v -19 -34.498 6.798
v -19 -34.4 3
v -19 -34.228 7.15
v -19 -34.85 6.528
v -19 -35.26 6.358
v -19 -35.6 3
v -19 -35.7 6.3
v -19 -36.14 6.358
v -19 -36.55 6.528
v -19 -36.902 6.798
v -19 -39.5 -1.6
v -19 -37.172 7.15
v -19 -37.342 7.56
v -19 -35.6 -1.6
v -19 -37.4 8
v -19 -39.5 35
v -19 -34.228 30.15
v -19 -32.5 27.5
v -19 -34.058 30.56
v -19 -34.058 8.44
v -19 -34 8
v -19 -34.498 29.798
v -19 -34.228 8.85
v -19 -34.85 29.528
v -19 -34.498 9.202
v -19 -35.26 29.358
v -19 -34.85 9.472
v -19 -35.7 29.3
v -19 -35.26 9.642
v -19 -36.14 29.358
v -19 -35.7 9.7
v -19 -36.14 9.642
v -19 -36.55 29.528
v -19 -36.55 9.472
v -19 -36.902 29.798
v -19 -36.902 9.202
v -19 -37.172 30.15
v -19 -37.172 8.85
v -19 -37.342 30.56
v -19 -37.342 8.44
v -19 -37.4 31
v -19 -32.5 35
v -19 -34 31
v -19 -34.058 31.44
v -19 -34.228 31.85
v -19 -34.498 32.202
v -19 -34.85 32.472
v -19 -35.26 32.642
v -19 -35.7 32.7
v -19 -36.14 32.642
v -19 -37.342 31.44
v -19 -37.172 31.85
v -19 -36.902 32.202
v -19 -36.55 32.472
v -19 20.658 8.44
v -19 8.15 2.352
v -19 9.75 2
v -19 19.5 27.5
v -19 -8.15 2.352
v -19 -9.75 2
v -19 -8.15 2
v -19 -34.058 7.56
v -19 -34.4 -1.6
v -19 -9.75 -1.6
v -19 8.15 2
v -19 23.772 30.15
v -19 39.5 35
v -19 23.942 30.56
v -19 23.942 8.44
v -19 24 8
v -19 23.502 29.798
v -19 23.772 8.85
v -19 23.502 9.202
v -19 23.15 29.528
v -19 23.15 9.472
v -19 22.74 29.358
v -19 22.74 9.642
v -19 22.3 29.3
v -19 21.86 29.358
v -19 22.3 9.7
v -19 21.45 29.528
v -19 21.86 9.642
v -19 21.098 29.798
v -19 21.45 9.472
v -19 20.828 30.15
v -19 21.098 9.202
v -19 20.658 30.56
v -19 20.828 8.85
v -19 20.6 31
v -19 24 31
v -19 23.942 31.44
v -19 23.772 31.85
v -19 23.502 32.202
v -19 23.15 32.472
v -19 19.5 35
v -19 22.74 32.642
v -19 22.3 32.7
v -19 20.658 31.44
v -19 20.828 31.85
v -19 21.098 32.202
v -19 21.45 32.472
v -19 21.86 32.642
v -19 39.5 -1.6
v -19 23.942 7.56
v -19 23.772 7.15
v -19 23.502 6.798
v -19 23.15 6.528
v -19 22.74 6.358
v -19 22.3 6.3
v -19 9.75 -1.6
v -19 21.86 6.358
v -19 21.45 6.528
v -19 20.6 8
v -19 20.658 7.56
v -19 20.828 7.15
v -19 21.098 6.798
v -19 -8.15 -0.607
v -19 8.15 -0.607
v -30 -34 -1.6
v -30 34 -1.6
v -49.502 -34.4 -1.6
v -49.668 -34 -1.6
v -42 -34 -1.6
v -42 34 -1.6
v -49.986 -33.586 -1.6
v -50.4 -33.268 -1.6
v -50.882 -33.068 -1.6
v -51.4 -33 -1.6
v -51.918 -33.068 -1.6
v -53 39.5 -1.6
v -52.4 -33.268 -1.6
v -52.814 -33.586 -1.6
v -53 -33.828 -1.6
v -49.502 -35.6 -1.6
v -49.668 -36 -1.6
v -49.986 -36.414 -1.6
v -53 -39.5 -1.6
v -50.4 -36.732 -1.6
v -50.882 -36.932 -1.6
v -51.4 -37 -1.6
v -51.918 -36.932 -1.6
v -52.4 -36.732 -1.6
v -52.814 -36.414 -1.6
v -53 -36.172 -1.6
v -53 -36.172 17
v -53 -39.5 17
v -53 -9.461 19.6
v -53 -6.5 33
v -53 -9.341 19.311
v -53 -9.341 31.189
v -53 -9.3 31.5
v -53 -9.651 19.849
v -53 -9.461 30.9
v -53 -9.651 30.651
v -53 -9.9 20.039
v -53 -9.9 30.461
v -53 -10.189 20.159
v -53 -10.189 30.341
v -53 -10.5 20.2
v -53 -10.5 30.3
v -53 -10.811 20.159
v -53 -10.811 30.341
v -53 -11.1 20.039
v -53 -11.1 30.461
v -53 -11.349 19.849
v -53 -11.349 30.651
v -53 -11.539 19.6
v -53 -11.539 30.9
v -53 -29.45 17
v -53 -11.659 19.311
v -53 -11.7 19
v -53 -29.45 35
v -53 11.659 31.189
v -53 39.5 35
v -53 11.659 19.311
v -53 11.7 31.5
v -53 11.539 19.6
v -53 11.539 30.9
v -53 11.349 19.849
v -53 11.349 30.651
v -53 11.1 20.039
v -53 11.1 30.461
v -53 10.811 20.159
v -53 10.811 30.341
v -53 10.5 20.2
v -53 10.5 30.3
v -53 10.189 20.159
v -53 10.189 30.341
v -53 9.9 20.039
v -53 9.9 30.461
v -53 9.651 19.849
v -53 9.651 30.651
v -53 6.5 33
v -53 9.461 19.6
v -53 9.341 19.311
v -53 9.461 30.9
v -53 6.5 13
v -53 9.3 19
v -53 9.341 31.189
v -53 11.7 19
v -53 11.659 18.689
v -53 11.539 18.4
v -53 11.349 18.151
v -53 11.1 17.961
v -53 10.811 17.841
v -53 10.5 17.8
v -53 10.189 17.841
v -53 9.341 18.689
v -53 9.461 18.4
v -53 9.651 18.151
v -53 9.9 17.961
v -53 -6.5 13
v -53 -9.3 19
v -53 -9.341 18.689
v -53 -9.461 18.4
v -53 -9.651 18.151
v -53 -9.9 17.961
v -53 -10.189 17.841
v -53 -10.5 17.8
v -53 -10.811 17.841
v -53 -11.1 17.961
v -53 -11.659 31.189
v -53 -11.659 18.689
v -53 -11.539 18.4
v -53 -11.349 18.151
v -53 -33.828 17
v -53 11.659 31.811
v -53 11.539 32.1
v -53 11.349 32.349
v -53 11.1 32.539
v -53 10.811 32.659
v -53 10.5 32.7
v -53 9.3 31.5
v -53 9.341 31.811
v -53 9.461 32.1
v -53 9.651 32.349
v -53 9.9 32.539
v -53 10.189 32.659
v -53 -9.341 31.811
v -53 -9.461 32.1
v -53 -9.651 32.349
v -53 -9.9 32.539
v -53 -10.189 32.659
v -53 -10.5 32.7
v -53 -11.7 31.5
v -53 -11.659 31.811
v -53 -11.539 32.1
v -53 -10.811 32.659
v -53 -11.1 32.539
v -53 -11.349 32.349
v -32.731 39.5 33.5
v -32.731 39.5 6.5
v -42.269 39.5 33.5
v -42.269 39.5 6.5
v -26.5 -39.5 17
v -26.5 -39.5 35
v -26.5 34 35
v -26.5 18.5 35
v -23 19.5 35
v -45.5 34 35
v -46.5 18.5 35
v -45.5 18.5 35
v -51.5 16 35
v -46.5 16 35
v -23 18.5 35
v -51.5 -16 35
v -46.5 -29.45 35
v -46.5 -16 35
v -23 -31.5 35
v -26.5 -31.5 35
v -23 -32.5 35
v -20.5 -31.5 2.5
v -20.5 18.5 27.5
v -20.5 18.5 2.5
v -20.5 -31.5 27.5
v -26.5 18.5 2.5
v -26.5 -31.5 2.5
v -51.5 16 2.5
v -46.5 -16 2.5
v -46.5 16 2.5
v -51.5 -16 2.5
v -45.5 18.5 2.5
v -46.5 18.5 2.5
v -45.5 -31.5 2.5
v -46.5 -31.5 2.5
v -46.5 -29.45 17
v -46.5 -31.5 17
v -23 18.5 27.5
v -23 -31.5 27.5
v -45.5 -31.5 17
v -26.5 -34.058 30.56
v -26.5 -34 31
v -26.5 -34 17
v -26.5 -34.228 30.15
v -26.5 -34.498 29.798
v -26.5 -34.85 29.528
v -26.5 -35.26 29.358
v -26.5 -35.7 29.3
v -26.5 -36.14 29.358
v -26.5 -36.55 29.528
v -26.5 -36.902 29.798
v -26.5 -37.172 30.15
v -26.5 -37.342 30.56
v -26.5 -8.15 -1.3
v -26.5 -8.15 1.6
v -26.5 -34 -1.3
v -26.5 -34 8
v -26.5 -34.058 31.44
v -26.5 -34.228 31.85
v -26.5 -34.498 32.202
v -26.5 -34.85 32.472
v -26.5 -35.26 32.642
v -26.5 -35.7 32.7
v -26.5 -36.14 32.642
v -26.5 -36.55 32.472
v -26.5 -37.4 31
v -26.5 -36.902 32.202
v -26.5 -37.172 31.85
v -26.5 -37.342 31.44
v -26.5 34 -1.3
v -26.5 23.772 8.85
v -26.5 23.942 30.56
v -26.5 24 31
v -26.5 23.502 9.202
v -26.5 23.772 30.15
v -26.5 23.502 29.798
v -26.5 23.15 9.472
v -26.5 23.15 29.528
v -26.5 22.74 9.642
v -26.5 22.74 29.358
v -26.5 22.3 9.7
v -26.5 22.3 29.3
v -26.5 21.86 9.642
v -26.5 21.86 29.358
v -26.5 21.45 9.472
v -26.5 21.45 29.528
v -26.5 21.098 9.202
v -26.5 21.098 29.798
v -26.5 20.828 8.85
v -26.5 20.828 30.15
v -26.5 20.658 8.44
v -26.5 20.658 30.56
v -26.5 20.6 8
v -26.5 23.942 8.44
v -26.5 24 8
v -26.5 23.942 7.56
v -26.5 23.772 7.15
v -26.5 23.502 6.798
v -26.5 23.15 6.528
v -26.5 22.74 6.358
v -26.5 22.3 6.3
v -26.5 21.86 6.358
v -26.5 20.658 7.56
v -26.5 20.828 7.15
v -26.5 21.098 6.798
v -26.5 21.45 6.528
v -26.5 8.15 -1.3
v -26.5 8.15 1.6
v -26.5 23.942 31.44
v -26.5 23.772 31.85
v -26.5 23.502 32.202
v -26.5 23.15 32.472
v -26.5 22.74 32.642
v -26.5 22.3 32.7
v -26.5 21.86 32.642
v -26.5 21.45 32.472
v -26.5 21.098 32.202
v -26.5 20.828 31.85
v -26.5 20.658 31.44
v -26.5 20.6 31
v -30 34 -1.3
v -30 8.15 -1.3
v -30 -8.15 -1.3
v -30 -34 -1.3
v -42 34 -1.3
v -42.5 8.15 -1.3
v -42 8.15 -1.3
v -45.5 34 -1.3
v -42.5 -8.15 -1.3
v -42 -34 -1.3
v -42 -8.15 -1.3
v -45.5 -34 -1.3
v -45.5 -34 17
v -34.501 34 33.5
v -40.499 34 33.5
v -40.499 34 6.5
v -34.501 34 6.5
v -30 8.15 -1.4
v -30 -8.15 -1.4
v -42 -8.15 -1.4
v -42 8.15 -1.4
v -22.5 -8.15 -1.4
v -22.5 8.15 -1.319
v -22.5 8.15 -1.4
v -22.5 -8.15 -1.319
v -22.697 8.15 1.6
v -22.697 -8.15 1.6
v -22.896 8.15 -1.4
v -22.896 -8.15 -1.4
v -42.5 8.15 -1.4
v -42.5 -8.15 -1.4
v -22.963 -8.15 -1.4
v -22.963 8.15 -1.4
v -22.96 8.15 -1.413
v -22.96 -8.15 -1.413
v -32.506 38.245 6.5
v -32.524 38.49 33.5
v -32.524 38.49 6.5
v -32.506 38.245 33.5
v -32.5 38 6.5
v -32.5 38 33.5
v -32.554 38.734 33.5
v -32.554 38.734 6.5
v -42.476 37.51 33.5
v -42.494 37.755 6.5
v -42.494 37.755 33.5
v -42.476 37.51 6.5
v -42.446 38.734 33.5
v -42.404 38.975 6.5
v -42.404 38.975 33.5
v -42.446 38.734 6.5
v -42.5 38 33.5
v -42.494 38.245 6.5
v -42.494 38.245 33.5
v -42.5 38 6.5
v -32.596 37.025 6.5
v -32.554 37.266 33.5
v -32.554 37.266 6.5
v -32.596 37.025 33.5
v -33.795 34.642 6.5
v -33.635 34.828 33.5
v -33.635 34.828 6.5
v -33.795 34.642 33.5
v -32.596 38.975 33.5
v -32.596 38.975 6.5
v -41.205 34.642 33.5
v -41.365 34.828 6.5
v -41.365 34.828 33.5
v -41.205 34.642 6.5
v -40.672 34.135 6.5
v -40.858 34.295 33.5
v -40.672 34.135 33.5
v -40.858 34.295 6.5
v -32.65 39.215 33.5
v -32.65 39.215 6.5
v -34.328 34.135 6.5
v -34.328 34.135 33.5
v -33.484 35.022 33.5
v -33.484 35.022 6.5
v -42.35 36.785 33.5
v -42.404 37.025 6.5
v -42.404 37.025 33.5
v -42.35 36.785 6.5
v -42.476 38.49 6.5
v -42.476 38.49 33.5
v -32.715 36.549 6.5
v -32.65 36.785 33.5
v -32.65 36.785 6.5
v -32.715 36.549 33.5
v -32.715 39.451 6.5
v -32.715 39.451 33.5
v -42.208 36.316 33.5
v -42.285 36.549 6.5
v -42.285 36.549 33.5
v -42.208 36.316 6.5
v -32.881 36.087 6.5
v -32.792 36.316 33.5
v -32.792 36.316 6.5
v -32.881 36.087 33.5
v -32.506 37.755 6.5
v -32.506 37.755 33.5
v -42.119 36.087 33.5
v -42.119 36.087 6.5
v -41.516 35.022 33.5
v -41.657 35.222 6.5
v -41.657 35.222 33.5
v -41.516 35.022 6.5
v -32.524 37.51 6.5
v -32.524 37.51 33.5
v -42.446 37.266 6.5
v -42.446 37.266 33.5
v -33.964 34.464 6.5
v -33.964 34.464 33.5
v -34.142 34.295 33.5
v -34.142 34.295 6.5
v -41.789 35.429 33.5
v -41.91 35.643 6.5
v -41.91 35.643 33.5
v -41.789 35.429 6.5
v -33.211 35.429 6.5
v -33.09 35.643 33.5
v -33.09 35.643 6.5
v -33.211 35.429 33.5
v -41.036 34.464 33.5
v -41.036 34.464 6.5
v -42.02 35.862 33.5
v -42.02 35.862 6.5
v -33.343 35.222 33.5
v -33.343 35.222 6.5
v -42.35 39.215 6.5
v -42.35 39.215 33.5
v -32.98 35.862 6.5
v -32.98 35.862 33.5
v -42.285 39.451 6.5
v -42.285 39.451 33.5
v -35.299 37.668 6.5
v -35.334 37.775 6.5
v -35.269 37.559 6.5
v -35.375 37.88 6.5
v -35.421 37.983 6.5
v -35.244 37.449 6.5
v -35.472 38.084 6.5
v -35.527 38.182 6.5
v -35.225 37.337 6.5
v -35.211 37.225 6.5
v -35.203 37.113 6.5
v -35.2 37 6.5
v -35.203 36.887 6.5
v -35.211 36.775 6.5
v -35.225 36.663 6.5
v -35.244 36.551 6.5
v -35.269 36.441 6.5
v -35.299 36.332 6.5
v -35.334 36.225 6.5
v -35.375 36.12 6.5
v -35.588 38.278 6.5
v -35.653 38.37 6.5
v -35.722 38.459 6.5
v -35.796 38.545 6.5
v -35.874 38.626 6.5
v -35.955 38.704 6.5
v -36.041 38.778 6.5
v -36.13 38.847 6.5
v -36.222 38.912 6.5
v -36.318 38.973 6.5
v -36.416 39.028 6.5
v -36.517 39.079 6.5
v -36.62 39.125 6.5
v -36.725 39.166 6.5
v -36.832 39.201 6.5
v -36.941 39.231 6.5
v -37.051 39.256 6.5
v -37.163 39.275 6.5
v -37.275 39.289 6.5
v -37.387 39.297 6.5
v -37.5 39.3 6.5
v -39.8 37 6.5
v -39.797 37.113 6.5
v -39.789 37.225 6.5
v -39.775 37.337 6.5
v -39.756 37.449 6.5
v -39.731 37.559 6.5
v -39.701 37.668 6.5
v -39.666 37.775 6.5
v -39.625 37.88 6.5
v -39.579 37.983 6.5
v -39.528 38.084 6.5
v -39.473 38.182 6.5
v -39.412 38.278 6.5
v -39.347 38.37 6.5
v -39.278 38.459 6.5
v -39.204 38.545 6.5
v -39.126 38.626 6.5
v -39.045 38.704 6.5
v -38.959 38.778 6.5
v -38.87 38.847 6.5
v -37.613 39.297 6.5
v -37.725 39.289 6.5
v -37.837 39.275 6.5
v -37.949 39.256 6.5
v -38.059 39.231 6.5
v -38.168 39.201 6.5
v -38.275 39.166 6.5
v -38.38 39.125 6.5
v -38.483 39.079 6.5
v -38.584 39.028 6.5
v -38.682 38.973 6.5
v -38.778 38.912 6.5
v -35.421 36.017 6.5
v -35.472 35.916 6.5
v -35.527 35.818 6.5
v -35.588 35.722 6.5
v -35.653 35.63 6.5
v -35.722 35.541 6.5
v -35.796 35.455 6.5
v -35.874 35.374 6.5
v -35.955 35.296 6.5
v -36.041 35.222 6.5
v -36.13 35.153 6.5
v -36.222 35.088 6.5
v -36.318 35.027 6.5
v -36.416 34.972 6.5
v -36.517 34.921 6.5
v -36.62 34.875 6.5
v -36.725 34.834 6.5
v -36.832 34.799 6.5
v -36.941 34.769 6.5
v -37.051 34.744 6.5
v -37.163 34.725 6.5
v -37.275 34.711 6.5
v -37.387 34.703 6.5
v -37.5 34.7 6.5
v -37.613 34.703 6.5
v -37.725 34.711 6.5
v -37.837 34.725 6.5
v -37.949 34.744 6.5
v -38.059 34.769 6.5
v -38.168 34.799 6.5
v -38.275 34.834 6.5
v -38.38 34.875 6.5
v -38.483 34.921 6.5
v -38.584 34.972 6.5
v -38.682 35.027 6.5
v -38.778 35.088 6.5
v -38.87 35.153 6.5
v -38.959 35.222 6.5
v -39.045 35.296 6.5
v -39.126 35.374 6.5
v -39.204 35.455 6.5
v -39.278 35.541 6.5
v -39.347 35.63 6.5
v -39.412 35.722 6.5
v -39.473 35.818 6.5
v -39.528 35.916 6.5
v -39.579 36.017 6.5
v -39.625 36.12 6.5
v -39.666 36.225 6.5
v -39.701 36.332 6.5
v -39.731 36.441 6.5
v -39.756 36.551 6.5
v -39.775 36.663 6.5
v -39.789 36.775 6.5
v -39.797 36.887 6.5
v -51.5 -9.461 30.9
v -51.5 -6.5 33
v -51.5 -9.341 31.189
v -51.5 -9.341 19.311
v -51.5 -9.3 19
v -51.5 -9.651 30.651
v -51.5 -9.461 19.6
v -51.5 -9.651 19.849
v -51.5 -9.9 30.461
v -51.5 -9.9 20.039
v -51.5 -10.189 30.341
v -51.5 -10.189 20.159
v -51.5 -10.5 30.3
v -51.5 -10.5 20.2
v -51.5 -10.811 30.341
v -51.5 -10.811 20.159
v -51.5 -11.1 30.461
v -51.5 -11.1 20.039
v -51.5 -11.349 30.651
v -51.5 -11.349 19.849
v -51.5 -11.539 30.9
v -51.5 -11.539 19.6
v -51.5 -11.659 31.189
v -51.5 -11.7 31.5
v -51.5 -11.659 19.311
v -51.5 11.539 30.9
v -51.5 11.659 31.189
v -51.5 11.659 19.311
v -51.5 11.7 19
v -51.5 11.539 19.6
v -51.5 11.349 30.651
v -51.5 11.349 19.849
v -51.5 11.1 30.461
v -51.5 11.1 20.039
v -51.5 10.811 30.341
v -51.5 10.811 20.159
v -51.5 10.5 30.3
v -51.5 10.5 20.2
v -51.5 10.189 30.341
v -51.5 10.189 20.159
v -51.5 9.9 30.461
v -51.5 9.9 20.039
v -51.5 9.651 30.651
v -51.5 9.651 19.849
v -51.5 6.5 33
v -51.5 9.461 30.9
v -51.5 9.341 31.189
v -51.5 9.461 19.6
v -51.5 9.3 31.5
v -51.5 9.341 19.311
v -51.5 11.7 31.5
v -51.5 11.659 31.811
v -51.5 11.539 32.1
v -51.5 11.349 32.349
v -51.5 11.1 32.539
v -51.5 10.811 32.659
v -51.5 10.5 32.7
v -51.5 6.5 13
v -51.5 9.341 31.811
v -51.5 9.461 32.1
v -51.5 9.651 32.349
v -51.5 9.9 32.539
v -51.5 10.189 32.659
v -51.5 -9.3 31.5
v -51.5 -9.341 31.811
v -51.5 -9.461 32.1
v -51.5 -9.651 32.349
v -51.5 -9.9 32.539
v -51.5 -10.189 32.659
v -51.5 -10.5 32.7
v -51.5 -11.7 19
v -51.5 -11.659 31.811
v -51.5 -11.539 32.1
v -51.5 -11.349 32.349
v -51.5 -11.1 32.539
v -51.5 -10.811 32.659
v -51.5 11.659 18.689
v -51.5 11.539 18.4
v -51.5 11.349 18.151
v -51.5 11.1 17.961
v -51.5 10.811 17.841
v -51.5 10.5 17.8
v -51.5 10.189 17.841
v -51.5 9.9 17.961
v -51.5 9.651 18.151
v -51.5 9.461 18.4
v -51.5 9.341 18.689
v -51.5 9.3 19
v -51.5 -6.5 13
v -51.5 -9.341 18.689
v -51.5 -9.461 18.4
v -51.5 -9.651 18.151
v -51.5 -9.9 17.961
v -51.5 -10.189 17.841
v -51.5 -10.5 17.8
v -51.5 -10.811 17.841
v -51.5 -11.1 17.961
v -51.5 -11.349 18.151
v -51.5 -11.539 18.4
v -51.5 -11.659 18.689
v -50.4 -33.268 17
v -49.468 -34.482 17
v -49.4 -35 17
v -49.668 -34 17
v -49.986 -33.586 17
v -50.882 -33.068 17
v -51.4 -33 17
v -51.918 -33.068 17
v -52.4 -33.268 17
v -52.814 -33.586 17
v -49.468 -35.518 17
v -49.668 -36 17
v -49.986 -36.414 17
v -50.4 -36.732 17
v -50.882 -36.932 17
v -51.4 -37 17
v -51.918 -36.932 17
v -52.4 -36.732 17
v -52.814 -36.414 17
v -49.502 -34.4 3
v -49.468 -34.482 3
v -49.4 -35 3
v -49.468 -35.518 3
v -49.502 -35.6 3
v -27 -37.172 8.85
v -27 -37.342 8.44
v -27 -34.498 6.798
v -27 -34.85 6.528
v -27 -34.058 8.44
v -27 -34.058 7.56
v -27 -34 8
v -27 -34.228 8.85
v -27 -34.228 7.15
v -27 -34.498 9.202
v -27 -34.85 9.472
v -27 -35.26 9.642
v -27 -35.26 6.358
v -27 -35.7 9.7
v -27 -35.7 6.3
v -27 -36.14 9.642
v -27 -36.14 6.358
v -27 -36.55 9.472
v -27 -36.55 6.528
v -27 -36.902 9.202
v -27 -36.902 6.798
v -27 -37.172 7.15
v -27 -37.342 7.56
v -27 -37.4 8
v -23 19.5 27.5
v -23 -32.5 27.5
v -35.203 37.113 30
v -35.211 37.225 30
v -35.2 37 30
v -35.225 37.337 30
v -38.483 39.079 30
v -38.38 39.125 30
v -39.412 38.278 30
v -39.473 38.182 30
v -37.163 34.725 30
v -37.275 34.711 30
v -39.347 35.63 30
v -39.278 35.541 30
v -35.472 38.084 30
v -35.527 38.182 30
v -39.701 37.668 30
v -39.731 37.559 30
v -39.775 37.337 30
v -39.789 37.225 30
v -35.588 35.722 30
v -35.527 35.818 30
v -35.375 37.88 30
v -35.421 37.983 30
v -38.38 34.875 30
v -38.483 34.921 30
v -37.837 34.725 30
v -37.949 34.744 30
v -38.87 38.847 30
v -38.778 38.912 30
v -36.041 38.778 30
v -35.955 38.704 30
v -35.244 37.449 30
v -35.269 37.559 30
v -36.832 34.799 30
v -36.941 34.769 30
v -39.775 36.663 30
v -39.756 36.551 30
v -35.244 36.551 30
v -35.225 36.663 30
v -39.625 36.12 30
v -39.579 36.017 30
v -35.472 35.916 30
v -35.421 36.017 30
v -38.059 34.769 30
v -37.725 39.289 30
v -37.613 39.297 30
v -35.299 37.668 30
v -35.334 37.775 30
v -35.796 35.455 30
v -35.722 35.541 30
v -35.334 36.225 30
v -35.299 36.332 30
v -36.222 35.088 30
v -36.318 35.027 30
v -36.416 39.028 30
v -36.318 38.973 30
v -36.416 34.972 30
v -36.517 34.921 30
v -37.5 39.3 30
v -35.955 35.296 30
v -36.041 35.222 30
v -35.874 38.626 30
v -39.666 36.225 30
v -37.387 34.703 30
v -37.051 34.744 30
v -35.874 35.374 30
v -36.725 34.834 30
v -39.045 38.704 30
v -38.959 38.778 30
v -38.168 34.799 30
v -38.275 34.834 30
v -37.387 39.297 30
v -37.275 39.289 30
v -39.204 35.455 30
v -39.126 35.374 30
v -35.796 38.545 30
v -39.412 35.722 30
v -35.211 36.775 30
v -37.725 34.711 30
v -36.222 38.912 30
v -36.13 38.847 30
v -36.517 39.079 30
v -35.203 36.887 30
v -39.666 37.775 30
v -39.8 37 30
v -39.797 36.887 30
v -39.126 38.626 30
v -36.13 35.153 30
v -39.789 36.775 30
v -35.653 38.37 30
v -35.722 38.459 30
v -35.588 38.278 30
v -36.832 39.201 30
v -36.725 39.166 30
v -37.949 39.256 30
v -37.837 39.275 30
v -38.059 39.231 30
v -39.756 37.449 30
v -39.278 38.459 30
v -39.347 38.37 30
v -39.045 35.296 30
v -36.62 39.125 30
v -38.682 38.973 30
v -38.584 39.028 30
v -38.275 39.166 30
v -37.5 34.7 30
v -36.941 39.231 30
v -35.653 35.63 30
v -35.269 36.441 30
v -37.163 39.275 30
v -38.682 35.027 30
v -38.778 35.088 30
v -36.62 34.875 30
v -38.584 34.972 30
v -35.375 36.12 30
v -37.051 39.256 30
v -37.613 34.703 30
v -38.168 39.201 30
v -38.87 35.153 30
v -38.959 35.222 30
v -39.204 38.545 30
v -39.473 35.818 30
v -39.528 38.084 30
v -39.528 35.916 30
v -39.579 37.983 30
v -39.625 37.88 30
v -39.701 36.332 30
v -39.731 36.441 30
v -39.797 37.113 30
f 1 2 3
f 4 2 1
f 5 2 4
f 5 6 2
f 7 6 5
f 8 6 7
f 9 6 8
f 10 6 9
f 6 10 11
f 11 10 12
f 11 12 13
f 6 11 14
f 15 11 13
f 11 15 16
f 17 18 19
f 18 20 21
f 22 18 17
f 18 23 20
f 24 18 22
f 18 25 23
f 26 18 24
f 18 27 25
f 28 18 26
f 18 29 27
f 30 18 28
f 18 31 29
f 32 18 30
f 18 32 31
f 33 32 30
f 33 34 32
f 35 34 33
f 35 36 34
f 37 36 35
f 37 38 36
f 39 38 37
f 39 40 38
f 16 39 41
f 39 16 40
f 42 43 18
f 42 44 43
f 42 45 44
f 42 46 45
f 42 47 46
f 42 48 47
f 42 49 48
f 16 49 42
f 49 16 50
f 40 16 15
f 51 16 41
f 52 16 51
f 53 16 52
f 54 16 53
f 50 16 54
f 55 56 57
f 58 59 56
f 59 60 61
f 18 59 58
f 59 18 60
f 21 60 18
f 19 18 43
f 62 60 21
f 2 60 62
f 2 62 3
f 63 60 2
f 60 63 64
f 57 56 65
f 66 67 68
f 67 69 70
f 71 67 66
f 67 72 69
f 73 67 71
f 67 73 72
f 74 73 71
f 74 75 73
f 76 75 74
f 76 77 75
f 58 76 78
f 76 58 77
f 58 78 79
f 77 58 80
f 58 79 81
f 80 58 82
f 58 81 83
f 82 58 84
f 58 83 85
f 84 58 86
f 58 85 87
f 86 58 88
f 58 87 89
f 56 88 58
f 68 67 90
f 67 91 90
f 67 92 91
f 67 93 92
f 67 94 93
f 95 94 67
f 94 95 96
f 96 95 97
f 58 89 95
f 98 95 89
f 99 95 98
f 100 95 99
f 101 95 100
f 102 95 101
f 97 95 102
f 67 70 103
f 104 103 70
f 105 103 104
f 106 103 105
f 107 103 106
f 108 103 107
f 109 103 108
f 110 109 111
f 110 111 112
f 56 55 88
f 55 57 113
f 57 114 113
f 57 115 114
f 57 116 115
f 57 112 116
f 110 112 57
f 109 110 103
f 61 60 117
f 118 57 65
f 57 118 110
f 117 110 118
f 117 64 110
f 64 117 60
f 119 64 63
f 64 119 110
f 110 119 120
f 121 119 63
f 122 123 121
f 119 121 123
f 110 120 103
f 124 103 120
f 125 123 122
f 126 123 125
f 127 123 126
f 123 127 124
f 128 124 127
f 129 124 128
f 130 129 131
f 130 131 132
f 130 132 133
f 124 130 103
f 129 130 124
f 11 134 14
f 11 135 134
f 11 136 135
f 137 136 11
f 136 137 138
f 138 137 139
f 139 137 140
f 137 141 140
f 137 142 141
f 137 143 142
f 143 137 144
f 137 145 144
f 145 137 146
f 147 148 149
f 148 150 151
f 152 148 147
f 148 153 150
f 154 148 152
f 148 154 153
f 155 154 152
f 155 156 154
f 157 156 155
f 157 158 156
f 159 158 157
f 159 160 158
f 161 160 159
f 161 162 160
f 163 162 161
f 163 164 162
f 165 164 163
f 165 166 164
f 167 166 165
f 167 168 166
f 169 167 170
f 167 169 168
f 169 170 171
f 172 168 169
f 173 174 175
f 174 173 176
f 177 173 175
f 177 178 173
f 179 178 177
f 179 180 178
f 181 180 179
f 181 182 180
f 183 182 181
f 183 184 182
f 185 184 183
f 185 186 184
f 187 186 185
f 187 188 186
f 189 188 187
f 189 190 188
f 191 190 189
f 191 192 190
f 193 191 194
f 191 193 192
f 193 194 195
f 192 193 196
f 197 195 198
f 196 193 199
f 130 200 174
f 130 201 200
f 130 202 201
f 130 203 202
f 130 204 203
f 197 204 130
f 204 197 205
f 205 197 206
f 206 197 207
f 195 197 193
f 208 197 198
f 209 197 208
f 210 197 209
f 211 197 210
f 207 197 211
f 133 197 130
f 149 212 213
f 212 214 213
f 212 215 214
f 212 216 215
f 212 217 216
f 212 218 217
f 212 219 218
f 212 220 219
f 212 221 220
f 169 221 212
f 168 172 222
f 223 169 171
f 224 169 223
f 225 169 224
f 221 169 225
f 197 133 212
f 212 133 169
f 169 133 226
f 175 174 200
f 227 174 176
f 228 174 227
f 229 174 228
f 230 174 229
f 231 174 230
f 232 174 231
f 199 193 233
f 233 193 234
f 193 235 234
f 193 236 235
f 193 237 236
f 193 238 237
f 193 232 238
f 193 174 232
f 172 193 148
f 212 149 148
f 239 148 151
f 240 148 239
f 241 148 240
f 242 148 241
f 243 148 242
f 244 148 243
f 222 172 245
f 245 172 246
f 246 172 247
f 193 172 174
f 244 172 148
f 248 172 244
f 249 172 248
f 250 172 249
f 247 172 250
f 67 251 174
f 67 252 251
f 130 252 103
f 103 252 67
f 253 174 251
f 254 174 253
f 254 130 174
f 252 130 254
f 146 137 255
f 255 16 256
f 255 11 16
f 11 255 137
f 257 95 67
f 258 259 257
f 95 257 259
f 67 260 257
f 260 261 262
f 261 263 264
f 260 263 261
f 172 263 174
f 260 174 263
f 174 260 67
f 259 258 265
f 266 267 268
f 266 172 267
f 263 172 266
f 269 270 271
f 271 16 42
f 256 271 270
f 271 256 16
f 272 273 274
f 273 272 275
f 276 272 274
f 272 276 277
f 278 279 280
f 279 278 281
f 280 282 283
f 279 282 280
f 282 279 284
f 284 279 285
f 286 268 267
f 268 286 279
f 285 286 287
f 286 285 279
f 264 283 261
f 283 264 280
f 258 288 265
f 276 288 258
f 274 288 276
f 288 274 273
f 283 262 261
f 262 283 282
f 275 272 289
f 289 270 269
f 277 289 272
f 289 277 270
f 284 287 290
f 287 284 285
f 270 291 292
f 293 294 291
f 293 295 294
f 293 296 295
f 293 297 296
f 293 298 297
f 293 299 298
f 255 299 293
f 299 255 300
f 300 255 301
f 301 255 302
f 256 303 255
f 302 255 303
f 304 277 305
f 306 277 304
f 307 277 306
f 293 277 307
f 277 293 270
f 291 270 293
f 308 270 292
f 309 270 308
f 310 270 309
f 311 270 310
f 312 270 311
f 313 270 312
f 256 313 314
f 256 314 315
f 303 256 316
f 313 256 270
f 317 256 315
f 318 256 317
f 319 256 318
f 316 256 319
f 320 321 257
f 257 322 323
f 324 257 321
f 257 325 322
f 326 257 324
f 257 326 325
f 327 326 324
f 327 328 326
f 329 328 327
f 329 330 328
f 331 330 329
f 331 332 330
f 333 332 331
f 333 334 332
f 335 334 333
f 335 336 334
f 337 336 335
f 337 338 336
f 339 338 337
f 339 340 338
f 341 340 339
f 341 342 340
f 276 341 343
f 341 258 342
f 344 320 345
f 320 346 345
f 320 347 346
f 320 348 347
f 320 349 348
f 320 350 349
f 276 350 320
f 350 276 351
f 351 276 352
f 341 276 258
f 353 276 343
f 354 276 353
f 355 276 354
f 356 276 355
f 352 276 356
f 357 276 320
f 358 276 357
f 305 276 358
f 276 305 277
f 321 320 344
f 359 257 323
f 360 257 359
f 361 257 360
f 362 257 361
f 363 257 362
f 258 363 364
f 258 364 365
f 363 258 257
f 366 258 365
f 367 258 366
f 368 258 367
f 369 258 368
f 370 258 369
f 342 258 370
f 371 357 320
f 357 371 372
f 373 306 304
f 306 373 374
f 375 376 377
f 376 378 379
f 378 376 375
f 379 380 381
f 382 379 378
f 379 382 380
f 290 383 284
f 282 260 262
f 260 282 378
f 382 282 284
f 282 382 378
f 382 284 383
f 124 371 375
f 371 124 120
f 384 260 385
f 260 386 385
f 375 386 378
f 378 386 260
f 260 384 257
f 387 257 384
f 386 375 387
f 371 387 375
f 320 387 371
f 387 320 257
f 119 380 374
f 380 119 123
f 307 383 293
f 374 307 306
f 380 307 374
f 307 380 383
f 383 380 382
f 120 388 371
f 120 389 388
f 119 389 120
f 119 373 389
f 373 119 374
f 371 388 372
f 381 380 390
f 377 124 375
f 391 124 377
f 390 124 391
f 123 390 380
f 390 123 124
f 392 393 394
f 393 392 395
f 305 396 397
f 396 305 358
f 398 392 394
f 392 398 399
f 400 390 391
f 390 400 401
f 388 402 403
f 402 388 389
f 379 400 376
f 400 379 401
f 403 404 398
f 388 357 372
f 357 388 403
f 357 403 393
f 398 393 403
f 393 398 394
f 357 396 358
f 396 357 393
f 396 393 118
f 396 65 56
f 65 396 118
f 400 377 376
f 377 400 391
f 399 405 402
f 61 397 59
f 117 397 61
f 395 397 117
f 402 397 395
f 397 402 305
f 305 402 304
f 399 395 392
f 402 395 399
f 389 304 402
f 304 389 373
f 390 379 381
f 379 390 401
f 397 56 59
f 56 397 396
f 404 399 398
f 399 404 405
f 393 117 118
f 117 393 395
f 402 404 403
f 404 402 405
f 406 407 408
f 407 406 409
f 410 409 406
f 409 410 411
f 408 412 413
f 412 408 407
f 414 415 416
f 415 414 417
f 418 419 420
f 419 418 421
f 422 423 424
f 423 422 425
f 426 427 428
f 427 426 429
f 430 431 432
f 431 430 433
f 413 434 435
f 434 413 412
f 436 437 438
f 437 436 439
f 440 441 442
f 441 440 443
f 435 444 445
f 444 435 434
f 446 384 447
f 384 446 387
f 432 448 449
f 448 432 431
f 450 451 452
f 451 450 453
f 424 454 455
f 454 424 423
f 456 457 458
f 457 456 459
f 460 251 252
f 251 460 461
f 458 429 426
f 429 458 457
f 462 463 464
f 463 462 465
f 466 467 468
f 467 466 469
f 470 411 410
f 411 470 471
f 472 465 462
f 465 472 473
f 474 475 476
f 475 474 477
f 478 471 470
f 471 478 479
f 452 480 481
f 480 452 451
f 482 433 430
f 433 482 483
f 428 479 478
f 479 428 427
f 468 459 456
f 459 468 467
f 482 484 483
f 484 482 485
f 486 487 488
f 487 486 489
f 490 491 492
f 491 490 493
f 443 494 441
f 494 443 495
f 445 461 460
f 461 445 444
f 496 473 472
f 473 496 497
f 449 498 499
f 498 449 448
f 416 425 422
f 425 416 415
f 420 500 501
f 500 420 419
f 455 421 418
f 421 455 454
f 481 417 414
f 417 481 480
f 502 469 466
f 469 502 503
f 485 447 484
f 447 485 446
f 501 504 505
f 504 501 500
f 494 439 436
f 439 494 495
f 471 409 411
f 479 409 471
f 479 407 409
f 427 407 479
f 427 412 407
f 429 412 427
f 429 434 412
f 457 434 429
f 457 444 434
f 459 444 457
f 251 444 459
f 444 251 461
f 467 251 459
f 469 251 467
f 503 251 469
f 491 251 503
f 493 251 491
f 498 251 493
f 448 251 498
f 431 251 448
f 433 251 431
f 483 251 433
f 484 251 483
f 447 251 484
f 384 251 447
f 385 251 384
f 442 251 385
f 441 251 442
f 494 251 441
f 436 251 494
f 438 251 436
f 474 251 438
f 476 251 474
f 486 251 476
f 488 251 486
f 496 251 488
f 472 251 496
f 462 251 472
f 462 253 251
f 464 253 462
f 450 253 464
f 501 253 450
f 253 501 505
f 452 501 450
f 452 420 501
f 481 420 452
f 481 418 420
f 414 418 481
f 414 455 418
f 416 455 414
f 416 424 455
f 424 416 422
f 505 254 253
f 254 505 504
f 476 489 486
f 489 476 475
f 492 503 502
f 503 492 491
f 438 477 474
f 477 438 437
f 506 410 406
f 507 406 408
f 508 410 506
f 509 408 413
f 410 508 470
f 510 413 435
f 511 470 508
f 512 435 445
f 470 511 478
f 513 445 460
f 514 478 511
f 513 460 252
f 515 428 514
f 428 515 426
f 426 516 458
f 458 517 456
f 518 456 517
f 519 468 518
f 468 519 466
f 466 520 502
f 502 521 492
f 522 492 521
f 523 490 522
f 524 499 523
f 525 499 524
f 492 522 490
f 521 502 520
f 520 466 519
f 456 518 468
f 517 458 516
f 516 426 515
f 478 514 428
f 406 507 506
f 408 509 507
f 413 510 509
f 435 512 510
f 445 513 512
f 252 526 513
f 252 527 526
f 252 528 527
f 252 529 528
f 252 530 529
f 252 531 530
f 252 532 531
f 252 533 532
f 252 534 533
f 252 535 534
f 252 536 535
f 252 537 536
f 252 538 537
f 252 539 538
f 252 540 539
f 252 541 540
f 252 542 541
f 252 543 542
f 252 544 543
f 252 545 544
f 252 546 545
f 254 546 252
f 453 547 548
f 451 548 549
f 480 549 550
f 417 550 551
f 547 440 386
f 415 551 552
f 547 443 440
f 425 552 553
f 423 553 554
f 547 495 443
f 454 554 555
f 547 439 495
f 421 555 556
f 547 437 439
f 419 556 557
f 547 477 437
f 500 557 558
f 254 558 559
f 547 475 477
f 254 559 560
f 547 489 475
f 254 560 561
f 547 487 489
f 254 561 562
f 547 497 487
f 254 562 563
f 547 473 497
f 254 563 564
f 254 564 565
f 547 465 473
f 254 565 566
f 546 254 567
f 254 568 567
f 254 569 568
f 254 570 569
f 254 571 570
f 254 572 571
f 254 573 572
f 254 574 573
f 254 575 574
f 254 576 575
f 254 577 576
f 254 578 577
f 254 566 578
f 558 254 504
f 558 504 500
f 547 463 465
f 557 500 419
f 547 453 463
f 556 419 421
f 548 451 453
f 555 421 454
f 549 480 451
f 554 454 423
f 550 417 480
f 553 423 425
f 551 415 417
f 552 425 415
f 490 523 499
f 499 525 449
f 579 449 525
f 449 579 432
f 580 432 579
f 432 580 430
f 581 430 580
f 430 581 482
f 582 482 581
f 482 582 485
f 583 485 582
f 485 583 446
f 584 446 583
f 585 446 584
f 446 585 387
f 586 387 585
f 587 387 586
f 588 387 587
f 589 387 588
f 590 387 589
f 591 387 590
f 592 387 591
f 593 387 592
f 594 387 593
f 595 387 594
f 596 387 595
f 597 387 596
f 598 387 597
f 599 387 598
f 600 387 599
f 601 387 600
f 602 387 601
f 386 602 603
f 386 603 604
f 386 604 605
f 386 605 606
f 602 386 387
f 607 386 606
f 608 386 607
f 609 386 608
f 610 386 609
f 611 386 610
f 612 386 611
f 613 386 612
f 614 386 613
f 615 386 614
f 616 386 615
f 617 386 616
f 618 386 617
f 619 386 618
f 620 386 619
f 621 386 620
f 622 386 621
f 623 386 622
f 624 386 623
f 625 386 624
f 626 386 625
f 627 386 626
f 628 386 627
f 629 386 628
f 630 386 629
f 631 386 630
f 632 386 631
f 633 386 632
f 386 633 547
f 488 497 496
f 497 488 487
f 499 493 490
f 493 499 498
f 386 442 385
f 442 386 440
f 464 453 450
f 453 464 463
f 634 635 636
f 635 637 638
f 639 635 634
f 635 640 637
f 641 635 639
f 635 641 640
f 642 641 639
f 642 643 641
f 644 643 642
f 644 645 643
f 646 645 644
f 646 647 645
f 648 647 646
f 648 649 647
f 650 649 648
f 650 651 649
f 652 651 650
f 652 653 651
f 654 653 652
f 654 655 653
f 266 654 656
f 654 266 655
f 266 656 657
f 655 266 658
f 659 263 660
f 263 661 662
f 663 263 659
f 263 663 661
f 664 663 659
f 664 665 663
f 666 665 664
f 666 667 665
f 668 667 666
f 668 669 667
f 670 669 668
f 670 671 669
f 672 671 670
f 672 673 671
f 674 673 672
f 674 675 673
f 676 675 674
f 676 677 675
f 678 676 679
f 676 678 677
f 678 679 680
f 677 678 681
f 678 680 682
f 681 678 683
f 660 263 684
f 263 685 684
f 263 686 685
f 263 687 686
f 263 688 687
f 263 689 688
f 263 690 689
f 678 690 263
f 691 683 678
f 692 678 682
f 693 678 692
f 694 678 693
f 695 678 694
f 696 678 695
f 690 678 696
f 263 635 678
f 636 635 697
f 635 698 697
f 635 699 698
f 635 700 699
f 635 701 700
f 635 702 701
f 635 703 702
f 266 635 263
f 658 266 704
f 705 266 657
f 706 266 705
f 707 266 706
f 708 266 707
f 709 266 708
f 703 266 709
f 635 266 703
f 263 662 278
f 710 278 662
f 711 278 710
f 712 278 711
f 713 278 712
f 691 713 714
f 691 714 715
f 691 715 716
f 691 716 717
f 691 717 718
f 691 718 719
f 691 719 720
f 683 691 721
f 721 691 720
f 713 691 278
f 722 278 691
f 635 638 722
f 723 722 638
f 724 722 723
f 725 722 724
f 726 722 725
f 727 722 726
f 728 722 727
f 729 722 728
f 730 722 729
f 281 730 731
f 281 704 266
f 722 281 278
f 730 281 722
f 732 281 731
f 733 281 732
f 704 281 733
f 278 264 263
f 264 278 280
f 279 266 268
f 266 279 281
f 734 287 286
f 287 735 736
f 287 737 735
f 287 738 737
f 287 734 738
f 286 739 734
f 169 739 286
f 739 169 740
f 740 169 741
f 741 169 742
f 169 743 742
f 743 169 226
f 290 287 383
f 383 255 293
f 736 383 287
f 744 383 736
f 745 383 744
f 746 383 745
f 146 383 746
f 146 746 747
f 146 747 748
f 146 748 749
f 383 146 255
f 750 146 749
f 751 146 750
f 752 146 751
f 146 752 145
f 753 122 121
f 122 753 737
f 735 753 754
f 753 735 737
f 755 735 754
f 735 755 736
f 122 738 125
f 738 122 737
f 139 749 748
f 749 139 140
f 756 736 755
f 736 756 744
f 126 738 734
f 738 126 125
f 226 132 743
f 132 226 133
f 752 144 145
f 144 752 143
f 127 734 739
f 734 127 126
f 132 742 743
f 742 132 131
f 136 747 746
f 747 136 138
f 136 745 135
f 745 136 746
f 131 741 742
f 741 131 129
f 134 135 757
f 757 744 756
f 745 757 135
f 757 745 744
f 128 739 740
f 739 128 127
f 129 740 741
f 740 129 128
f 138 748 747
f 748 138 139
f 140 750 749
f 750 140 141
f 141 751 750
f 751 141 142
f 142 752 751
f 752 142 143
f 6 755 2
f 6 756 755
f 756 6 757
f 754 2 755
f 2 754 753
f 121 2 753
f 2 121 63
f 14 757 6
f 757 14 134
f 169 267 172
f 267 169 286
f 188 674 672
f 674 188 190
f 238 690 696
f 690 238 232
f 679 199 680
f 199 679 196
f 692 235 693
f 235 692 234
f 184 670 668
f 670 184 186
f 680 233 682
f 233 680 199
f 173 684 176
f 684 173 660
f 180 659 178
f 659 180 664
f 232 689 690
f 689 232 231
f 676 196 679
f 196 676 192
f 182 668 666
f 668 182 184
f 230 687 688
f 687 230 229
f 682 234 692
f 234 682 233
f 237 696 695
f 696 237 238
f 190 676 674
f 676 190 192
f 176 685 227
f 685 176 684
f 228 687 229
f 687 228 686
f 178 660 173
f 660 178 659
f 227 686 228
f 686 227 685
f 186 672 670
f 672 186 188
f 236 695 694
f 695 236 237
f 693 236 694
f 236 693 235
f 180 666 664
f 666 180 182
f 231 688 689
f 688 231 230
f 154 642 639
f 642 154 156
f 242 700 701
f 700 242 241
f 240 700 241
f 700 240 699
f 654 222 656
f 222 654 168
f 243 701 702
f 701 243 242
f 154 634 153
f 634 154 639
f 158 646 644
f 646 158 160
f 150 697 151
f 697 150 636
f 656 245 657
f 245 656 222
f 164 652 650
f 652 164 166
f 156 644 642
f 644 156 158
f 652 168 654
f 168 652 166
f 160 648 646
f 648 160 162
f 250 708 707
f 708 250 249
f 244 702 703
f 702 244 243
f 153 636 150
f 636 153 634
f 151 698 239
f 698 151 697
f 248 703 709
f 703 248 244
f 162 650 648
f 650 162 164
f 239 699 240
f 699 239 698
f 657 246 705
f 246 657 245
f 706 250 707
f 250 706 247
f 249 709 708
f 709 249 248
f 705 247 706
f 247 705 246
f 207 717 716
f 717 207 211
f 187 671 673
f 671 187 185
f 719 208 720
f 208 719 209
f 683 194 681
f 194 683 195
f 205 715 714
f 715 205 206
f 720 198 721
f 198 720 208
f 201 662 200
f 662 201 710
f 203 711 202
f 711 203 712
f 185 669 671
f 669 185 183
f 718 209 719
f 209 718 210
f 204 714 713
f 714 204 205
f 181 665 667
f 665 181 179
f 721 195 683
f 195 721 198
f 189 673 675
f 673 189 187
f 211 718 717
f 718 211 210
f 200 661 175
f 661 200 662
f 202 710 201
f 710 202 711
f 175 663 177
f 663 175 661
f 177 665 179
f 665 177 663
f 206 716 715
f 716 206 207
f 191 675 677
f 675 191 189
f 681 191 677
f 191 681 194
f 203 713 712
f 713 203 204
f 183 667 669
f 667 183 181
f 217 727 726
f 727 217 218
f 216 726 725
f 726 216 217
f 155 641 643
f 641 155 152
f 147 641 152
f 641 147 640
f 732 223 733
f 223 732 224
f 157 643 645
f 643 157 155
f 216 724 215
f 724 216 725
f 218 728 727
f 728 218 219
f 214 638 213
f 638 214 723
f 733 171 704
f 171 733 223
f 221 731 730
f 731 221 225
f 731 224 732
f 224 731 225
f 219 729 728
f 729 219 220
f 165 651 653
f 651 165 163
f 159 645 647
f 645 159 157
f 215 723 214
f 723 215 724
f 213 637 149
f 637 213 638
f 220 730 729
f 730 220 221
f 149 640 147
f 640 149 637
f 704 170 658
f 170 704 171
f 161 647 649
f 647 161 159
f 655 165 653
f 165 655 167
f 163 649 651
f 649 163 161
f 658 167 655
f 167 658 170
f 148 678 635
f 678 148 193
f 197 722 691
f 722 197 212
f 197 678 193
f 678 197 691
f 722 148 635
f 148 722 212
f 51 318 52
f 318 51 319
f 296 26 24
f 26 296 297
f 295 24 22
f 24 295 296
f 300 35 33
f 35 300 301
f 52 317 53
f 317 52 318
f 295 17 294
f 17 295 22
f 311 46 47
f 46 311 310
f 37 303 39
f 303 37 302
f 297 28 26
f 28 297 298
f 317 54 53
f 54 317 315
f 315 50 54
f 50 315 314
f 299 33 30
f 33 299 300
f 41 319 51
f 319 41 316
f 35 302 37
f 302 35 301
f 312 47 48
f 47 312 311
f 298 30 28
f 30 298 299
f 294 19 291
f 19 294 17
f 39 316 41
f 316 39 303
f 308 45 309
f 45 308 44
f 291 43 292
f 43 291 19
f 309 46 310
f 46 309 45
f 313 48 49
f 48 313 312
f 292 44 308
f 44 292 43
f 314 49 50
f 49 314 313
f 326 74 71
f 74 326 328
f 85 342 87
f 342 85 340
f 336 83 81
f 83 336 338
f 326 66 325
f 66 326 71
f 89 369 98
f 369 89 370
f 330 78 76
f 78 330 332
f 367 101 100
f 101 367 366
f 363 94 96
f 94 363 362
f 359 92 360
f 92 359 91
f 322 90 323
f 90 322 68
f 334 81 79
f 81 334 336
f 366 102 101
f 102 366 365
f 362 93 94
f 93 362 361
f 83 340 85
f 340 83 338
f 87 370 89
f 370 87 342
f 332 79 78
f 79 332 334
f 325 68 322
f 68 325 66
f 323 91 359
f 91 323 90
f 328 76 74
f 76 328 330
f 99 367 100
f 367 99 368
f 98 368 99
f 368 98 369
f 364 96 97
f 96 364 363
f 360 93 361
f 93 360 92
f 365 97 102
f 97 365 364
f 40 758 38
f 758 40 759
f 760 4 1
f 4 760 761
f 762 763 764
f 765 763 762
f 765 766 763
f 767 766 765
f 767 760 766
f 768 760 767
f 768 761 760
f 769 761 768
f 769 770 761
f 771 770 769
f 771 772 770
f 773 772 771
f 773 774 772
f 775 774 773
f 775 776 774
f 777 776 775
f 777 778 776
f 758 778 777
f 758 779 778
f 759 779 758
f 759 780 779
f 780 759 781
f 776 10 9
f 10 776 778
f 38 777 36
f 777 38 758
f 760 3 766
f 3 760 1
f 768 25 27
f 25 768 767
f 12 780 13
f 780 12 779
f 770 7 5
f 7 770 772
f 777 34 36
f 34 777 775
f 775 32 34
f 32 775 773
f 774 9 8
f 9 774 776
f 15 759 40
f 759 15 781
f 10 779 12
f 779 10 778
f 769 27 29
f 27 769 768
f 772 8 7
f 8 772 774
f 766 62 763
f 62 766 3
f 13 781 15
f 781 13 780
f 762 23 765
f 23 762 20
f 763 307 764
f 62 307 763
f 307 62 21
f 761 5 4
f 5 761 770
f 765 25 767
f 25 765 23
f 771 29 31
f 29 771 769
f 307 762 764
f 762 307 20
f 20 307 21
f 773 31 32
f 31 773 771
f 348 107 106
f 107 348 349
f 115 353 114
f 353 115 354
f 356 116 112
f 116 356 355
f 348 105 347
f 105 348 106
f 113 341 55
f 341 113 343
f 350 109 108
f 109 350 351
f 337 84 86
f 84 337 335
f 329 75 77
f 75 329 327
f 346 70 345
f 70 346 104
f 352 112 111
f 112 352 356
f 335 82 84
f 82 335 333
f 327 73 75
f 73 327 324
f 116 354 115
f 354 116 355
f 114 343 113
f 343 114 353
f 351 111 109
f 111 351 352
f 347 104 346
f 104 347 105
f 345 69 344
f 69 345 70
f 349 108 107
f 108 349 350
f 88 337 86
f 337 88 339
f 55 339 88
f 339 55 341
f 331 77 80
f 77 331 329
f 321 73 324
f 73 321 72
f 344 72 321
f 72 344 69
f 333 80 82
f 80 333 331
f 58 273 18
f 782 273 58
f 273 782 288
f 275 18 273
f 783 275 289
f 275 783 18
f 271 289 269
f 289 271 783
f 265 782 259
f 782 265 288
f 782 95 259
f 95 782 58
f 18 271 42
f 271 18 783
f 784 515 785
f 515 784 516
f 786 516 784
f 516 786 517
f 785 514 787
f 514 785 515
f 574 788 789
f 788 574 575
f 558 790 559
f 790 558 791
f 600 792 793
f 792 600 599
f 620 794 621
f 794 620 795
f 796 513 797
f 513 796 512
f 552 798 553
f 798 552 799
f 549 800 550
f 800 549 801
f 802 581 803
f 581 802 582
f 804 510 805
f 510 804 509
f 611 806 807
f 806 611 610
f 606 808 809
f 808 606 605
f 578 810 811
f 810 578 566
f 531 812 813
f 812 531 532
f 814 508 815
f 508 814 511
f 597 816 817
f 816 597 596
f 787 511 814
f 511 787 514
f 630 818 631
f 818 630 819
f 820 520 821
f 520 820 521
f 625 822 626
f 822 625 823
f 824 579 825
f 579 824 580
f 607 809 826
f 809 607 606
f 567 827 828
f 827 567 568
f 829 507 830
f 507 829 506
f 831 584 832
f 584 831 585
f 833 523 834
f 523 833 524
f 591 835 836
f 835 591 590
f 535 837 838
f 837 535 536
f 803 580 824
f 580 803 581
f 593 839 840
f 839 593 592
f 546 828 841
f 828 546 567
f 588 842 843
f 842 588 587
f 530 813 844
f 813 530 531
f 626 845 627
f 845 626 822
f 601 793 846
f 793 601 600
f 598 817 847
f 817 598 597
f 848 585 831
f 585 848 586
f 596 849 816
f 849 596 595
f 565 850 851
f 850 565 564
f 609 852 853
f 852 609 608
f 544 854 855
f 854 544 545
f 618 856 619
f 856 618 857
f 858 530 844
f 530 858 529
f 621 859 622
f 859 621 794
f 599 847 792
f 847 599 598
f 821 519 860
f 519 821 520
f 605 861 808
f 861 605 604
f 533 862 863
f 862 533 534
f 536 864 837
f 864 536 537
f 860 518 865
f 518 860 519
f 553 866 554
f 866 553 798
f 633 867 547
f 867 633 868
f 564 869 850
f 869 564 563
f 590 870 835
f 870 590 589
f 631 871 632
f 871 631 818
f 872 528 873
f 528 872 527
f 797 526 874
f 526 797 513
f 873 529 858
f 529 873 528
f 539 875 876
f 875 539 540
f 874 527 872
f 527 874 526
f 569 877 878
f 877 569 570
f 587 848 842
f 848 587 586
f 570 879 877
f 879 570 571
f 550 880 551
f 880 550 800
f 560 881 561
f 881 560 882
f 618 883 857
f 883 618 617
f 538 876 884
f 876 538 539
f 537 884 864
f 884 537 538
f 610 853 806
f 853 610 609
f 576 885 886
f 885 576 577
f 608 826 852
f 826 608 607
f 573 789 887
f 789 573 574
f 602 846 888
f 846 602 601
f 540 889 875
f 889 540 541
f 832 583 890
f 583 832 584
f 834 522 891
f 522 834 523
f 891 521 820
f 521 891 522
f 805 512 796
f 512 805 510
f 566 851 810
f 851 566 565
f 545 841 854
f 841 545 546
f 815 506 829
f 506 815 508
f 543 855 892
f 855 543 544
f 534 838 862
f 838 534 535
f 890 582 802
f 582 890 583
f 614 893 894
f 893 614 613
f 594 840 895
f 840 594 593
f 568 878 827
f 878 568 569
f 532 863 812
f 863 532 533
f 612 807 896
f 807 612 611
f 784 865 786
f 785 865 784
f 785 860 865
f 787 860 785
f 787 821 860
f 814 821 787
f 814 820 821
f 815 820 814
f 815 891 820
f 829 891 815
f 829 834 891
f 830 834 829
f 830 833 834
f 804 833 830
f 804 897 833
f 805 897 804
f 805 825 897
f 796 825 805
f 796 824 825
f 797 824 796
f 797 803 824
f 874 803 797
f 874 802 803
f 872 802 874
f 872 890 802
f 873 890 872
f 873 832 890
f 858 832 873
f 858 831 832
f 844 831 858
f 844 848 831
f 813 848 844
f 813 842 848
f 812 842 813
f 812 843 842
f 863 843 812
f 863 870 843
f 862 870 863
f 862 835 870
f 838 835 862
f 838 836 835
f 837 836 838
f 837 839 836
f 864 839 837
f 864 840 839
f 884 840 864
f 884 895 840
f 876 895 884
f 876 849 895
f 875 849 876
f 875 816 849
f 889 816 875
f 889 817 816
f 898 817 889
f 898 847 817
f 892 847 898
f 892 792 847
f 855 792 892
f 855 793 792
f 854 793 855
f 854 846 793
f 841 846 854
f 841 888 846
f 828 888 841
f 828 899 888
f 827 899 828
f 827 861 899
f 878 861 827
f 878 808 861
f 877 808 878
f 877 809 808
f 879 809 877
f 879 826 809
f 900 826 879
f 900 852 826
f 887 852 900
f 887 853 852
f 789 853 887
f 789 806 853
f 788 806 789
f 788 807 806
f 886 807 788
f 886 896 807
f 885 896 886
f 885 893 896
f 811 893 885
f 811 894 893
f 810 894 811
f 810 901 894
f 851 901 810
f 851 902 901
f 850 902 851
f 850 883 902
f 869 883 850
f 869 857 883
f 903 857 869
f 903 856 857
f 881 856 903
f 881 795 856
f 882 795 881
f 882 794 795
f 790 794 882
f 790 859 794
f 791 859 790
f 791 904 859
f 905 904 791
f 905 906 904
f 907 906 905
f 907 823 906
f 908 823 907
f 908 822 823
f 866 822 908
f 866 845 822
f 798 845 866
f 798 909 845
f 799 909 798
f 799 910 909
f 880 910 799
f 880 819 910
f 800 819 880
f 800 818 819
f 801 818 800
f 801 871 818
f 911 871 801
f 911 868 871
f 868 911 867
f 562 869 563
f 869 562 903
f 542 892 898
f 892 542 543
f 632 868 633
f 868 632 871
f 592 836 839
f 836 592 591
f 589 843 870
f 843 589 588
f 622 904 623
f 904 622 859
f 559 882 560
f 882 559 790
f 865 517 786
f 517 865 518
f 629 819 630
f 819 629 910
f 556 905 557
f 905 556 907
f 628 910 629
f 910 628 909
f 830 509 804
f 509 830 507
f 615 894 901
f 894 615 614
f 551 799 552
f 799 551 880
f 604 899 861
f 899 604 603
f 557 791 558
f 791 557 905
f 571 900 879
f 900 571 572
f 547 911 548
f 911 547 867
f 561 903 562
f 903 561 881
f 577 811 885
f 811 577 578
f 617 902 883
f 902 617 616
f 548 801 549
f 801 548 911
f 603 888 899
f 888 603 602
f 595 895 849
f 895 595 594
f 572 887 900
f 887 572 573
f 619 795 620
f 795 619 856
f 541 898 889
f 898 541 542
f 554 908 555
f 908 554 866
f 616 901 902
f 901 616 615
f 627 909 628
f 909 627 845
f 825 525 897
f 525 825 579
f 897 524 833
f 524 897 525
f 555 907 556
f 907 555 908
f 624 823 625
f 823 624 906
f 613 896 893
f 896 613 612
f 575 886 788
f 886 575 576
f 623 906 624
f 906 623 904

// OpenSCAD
union () {
difference(){
union(){
translate([-36,0,1.4])cube([34,79,6], center=true);    
translate([-13,0,19.5])cube([80,79,31], center=true); 
translate([-23.5,-4.5,19.5])cube([8,69,31], center=true);
}
    //Cube LiPo Battery
    translate([-33.5,-6.5,20])cube([26,50,35], center=true);

    //Dual cylinder lipo Adafruit style
    translate([-36,0,17.2])cube([19,68,37], center=true);
    translate([-36,0,16])cube([12,68,37], center=true);

    //Cavity for camera cable
    #translate([-32.5,0,0.1])cube([20,16.3,3], center=true);
    translate([-11,0,2.5]) rotate([0,-11.5,0]) cube([25,16.3,2.9], center=true);

    //Camera cable routing
    translate([-37.5,38,20])  rotate([0,0,0])   cylinder(27, r1=5, r2=5, center=true,$fn=128);

    //Holes for battery terminals and solar plug
    translate([30,-30,16])cube([98,40.5,40], center=true);
    translate([30,30,16])cube([98,40.5,40], center=true);
    
    //Camera installation
    translate([-41.5,0,20])cube([20,32,35], center=true);
    
    //battery cable routing
    translate([-34,-37,27])  cube([15,10,20], center=true);
    translate([-51.4,-35,11]) rotate([0,0,0])  cylinder(h=30, r1=2, r2=2, center=true,$fn=24);
    

    translate([-35.5,-35,0])  cube([35,1.2,6], center=true);

    //translate([-46.5,-37.5,20.7])rotate([0,90,0])   cylinder(h=12.05, r1=3.75, r2=3.75, center=true,$fn=24);
    translate([-46,-35,29])  cube([20,11.1,24], center=true);
   
    //translate([-35,-35,0.7])rotate([0,90,0])   cylinder(h=40, r1=2, r2=2, center=true,$fn=24);
        
    
    ///camera holes
    translate([-51,10.5,31.5])rotate([0,90,0])   cylinder(h=5, r1=1.2, r2=1.2, center=true,$fn=24);
    translate([-51,-10.5,31.5])rotate([0,90,0])   cylinder(h=5, r1=1.2, r2=1.2, center=true,$fn=24);
    translate([-51,10.5,19])rotate([0,90,0])   cylinder(h=5, r1=1.2, r2=1.2, center=true,$fn=24);
    translate([-51,-10.5,19])rotate([0,90,0])   cylinder(h=5, r1=1.2, r2=1.2, center=true,$fn=24);

    //camera cutout
    translate([-52,0,23])cube([8,13,20], center=true);
    
     //Pi Zero holes  
    translate([-17,-35.7,31])rotate([0,90,0])   cylinder(h=20, r1=1.7, r2=1.7, center=true,$fn=24);
    translate([-17,22.3,31])rotate([0,90,0])   cylinder(h=20, r1=1.7, r2=1.7, center=true,$fn=24);
    translate([-17,-35.7,8])rotate([0,90,0])   cylinder(h=20, r1=1.7, r2=1.7, center=true,$fn=24);
    translate([-17,22.3,8])rotate([0,90,0])   cylinder(h=20, r1=1.7, r2=1.7, center=true,$fn=24);
    
    //Pi 4 cutout 85.6mm × 56.5mm
    //translate([52,0.8,25])cube([58,87,30], center=true);
    //Pi Zero cut out 65mm x 30mm
    //translate([6,-9,22])cube([42,120,33], center=true);
    
    //Pi PCB cutout
    translate([16,-6.5,20])cube([70,70.5,36], center=true);
    translate([7,-6.5,35])cube([60,52,15], center=true);

}
//Camera cable routing
translate([-37.5,37,15])  rotate([0,0,0])   cylinder(30, r1=2.3, r2=2.3, center=true,$fn=128);
        }
